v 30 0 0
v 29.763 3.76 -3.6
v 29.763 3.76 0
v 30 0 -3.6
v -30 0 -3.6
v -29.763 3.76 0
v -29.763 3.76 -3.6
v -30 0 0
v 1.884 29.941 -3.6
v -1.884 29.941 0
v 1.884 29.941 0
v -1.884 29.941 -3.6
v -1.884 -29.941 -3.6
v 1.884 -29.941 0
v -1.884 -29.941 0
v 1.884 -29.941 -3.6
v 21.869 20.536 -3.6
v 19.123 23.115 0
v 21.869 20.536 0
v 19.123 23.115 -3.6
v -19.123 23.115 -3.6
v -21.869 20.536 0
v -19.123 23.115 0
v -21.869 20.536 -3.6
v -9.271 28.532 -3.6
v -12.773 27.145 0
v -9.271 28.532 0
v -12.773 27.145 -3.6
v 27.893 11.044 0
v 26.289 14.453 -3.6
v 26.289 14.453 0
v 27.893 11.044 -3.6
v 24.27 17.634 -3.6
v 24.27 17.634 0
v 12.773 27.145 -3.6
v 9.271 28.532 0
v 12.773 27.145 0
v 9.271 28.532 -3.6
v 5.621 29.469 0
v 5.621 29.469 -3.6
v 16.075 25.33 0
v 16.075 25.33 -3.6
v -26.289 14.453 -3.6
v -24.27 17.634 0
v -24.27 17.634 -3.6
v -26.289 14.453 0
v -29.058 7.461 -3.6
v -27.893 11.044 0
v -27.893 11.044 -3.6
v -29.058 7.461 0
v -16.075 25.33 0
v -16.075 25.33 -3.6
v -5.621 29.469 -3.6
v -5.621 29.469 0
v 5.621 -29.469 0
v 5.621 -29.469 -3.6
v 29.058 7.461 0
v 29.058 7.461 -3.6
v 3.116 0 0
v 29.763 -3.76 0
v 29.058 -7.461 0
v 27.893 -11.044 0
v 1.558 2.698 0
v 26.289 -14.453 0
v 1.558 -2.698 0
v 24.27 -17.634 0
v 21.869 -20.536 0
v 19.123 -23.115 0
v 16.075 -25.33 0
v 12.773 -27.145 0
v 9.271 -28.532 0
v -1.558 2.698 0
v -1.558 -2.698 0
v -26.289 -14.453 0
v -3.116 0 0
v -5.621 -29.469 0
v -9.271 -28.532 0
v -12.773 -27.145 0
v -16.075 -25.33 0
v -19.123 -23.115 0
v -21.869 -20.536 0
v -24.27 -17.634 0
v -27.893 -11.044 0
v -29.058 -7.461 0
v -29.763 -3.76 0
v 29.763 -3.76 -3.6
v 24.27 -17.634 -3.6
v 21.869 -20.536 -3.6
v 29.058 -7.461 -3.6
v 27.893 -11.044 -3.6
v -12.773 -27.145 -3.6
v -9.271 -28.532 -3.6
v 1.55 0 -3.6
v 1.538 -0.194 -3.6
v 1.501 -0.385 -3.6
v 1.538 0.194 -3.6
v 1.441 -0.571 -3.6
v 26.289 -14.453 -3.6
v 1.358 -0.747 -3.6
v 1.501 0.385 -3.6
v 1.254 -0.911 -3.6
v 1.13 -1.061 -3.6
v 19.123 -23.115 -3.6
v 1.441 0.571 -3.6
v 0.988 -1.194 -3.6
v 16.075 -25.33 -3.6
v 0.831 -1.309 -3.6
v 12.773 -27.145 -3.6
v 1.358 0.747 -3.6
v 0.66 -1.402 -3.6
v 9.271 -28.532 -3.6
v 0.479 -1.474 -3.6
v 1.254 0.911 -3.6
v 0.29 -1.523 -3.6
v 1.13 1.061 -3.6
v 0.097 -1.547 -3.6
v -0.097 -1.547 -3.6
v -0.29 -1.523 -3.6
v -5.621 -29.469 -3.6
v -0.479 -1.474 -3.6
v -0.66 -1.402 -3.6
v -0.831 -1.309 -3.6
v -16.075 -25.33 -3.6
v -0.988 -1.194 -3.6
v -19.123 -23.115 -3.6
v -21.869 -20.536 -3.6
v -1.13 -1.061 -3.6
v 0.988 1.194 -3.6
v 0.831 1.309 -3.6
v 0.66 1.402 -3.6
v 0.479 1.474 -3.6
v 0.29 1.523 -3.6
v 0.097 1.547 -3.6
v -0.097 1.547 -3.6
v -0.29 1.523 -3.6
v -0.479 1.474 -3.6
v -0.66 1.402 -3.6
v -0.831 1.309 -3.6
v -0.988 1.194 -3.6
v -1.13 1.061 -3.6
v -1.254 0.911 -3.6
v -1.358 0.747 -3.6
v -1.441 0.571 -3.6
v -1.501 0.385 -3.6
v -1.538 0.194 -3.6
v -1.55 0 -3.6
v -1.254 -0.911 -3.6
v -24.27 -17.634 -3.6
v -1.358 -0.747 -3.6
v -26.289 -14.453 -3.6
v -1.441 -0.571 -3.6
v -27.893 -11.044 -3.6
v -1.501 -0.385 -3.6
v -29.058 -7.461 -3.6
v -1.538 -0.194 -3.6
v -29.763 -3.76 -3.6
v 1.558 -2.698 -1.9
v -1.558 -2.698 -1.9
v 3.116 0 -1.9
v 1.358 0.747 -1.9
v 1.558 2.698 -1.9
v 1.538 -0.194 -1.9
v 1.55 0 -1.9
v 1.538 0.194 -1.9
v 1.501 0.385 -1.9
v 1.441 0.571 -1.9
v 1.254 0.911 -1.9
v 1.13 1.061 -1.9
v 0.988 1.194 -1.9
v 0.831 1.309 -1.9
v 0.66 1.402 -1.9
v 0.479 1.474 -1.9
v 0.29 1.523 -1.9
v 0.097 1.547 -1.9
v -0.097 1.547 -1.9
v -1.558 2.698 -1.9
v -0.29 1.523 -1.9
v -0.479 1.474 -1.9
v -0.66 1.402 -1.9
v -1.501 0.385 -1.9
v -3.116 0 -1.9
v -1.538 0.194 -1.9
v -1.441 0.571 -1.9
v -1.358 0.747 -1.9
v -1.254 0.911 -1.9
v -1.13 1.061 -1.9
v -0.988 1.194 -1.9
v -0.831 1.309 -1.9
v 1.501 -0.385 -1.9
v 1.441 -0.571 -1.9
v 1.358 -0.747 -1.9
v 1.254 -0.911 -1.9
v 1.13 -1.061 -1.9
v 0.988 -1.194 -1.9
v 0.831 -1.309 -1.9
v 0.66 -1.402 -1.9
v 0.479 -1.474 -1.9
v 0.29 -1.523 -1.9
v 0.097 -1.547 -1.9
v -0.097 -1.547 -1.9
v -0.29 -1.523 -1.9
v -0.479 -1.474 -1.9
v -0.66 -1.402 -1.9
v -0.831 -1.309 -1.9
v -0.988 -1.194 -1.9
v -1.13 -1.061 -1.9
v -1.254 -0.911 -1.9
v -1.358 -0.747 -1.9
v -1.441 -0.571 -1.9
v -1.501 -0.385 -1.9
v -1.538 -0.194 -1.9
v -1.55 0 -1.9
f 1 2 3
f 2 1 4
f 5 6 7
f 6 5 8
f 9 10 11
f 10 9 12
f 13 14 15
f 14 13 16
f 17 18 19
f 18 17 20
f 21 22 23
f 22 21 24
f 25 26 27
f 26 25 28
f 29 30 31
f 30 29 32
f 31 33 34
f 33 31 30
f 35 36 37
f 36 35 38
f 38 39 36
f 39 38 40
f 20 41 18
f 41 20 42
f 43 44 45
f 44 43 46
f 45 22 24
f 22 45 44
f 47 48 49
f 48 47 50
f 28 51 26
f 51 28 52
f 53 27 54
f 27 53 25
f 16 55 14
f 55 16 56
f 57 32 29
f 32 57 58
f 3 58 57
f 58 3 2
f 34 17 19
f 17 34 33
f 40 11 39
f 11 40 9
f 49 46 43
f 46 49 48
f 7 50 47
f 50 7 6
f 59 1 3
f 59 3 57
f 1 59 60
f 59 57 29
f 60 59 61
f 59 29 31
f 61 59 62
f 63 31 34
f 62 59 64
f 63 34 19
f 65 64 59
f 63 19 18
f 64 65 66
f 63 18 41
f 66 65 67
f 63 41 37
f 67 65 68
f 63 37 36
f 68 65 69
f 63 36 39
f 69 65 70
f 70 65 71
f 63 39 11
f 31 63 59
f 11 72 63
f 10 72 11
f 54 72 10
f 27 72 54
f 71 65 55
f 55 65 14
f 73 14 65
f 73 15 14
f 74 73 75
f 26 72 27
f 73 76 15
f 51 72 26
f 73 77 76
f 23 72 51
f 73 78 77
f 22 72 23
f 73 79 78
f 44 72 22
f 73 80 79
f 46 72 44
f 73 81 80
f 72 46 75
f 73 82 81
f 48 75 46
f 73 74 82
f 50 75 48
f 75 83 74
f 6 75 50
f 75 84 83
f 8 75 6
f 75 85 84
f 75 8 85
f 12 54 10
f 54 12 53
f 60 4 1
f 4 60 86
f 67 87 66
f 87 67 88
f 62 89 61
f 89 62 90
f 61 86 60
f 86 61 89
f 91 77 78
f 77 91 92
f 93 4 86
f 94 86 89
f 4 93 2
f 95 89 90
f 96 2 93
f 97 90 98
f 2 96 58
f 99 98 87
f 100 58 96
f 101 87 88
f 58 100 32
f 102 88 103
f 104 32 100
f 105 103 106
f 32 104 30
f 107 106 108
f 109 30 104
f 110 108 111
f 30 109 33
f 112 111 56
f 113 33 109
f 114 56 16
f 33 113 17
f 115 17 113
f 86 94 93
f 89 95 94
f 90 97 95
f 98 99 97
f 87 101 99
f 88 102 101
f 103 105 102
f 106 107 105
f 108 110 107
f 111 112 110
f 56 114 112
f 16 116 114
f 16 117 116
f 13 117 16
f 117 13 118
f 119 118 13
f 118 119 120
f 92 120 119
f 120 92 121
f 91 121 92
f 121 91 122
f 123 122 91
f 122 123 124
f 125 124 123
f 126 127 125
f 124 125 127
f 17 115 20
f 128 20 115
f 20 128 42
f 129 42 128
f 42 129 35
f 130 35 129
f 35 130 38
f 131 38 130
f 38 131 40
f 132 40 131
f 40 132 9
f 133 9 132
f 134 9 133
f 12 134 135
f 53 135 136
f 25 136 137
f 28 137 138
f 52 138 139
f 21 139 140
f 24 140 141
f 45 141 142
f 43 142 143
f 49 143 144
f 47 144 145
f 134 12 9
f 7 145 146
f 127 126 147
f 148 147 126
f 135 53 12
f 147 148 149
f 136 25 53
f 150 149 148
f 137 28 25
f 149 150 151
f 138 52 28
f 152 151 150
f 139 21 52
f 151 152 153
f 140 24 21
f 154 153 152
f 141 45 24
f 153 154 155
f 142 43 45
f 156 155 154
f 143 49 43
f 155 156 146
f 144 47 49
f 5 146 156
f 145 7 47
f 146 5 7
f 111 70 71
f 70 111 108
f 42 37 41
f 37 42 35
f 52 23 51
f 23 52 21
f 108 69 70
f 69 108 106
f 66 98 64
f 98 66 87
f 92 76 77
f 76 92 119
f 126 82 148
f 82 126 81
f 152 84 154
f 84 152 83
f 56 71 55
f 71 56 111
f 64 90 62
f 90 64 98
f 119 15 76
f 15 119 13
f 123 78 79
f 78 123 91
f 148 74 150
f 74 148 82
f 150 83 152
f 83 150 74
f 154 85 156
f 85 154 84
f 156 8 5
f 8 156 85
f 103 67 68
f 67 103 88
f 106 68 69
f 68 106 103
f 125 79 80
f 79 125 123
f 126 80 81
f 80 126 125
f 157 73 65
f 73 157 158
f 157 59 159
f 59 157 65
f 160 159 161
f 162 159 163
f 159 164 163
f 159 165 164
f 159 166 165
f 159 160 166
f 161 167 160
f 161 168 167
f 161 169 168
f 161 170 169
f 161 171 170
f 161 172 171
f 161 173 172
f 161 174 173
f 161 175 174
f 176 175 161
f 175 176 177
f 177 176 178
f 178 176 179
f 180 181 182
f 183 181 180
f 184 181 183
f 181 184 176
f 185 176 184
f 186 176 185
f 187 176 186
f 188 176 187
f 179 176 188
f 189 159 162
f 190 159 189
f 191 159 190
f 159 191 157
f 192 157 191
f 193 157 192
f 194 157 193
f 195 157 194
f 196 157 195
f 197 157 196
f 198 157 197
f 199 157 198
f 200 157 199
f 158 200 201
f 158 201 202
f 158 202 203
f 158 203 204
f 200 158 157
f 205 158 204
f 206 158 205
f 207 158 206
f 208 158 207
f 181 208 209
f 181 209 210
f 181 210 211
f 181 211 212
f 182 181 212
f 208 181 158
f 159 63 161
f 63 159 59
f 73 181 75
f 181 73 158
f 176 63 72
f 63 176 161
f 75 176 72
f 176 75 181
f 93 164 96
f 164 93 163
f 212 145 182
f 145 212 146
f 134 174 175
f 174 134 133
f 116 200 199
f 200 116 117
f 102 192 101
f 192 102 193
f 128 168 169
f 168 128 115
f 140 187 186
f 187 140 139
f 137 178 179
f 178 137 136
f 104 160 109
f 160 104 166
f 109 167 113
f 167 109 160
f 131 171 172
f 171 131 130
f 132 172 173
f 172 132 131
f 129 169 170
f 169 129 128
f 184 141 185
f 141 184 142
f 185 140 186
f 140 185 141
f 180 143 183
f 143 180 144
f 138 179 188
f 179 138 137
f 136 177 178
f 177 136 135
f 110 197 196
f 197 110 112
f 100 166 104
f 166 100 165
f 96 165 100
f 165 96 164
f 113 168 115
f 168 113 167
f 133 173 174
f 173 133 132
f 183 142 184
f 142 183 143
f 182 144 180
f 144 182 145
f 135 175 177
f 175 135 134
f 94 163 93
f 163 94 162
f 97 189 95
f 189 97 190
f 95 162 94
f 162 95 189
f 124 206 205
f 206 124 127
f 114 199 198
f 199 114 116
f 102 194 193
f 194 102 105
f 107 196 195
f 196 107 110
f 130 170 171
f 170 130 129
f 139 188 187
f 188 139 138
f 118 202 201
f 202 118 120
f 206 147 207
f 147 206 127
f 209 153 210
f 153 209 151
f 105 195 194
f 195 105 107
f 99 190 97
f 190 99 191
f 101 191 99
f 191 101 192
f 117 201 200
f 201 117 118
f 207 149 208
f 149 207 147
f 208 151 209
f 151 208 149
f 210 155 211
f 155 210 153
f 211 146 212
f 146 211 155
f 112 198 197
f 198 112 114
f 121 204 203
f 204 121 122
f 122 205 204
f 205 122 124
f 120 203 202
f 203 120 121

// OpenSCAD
$fn = 50;


difference() {
	union() {
		translate(v = [0, 0, -3.6000000000]) {
			cylinder(h = 3.6000000000, r = 30.0000000000);
		}
		translate(v = [0, 0, -2.1000000000]) {
			cylinder(h = 2.1000000000, r = 2.8750000000);
		}
	}
	union() {
		translate(v = [0, 0, 0]) {
			rotate(a = [0, 0, 0]) {
				difference() {
					union() {
						translate(v = [0, 0, -1.9000000000]) {
							linear_extrude(height = 1.9000000000) {
								polygon(points = [[3.1158000000, 0.0000000000], [1.5579000000, 2.6983619531], [-1.5579000000, 2.6983619531], [-3.1158000000, 0.0000000000], [-1.5579000000, -2.6983619531], [1.5579000000, -2.6983619531]]);
							}
						}
					}
					union();
				}
			}
		}
		#translate(v = [0, 0, -100.0000000000]) {
			cylinder(h = 200, r = 1.5500000000);
		}
	}
}
